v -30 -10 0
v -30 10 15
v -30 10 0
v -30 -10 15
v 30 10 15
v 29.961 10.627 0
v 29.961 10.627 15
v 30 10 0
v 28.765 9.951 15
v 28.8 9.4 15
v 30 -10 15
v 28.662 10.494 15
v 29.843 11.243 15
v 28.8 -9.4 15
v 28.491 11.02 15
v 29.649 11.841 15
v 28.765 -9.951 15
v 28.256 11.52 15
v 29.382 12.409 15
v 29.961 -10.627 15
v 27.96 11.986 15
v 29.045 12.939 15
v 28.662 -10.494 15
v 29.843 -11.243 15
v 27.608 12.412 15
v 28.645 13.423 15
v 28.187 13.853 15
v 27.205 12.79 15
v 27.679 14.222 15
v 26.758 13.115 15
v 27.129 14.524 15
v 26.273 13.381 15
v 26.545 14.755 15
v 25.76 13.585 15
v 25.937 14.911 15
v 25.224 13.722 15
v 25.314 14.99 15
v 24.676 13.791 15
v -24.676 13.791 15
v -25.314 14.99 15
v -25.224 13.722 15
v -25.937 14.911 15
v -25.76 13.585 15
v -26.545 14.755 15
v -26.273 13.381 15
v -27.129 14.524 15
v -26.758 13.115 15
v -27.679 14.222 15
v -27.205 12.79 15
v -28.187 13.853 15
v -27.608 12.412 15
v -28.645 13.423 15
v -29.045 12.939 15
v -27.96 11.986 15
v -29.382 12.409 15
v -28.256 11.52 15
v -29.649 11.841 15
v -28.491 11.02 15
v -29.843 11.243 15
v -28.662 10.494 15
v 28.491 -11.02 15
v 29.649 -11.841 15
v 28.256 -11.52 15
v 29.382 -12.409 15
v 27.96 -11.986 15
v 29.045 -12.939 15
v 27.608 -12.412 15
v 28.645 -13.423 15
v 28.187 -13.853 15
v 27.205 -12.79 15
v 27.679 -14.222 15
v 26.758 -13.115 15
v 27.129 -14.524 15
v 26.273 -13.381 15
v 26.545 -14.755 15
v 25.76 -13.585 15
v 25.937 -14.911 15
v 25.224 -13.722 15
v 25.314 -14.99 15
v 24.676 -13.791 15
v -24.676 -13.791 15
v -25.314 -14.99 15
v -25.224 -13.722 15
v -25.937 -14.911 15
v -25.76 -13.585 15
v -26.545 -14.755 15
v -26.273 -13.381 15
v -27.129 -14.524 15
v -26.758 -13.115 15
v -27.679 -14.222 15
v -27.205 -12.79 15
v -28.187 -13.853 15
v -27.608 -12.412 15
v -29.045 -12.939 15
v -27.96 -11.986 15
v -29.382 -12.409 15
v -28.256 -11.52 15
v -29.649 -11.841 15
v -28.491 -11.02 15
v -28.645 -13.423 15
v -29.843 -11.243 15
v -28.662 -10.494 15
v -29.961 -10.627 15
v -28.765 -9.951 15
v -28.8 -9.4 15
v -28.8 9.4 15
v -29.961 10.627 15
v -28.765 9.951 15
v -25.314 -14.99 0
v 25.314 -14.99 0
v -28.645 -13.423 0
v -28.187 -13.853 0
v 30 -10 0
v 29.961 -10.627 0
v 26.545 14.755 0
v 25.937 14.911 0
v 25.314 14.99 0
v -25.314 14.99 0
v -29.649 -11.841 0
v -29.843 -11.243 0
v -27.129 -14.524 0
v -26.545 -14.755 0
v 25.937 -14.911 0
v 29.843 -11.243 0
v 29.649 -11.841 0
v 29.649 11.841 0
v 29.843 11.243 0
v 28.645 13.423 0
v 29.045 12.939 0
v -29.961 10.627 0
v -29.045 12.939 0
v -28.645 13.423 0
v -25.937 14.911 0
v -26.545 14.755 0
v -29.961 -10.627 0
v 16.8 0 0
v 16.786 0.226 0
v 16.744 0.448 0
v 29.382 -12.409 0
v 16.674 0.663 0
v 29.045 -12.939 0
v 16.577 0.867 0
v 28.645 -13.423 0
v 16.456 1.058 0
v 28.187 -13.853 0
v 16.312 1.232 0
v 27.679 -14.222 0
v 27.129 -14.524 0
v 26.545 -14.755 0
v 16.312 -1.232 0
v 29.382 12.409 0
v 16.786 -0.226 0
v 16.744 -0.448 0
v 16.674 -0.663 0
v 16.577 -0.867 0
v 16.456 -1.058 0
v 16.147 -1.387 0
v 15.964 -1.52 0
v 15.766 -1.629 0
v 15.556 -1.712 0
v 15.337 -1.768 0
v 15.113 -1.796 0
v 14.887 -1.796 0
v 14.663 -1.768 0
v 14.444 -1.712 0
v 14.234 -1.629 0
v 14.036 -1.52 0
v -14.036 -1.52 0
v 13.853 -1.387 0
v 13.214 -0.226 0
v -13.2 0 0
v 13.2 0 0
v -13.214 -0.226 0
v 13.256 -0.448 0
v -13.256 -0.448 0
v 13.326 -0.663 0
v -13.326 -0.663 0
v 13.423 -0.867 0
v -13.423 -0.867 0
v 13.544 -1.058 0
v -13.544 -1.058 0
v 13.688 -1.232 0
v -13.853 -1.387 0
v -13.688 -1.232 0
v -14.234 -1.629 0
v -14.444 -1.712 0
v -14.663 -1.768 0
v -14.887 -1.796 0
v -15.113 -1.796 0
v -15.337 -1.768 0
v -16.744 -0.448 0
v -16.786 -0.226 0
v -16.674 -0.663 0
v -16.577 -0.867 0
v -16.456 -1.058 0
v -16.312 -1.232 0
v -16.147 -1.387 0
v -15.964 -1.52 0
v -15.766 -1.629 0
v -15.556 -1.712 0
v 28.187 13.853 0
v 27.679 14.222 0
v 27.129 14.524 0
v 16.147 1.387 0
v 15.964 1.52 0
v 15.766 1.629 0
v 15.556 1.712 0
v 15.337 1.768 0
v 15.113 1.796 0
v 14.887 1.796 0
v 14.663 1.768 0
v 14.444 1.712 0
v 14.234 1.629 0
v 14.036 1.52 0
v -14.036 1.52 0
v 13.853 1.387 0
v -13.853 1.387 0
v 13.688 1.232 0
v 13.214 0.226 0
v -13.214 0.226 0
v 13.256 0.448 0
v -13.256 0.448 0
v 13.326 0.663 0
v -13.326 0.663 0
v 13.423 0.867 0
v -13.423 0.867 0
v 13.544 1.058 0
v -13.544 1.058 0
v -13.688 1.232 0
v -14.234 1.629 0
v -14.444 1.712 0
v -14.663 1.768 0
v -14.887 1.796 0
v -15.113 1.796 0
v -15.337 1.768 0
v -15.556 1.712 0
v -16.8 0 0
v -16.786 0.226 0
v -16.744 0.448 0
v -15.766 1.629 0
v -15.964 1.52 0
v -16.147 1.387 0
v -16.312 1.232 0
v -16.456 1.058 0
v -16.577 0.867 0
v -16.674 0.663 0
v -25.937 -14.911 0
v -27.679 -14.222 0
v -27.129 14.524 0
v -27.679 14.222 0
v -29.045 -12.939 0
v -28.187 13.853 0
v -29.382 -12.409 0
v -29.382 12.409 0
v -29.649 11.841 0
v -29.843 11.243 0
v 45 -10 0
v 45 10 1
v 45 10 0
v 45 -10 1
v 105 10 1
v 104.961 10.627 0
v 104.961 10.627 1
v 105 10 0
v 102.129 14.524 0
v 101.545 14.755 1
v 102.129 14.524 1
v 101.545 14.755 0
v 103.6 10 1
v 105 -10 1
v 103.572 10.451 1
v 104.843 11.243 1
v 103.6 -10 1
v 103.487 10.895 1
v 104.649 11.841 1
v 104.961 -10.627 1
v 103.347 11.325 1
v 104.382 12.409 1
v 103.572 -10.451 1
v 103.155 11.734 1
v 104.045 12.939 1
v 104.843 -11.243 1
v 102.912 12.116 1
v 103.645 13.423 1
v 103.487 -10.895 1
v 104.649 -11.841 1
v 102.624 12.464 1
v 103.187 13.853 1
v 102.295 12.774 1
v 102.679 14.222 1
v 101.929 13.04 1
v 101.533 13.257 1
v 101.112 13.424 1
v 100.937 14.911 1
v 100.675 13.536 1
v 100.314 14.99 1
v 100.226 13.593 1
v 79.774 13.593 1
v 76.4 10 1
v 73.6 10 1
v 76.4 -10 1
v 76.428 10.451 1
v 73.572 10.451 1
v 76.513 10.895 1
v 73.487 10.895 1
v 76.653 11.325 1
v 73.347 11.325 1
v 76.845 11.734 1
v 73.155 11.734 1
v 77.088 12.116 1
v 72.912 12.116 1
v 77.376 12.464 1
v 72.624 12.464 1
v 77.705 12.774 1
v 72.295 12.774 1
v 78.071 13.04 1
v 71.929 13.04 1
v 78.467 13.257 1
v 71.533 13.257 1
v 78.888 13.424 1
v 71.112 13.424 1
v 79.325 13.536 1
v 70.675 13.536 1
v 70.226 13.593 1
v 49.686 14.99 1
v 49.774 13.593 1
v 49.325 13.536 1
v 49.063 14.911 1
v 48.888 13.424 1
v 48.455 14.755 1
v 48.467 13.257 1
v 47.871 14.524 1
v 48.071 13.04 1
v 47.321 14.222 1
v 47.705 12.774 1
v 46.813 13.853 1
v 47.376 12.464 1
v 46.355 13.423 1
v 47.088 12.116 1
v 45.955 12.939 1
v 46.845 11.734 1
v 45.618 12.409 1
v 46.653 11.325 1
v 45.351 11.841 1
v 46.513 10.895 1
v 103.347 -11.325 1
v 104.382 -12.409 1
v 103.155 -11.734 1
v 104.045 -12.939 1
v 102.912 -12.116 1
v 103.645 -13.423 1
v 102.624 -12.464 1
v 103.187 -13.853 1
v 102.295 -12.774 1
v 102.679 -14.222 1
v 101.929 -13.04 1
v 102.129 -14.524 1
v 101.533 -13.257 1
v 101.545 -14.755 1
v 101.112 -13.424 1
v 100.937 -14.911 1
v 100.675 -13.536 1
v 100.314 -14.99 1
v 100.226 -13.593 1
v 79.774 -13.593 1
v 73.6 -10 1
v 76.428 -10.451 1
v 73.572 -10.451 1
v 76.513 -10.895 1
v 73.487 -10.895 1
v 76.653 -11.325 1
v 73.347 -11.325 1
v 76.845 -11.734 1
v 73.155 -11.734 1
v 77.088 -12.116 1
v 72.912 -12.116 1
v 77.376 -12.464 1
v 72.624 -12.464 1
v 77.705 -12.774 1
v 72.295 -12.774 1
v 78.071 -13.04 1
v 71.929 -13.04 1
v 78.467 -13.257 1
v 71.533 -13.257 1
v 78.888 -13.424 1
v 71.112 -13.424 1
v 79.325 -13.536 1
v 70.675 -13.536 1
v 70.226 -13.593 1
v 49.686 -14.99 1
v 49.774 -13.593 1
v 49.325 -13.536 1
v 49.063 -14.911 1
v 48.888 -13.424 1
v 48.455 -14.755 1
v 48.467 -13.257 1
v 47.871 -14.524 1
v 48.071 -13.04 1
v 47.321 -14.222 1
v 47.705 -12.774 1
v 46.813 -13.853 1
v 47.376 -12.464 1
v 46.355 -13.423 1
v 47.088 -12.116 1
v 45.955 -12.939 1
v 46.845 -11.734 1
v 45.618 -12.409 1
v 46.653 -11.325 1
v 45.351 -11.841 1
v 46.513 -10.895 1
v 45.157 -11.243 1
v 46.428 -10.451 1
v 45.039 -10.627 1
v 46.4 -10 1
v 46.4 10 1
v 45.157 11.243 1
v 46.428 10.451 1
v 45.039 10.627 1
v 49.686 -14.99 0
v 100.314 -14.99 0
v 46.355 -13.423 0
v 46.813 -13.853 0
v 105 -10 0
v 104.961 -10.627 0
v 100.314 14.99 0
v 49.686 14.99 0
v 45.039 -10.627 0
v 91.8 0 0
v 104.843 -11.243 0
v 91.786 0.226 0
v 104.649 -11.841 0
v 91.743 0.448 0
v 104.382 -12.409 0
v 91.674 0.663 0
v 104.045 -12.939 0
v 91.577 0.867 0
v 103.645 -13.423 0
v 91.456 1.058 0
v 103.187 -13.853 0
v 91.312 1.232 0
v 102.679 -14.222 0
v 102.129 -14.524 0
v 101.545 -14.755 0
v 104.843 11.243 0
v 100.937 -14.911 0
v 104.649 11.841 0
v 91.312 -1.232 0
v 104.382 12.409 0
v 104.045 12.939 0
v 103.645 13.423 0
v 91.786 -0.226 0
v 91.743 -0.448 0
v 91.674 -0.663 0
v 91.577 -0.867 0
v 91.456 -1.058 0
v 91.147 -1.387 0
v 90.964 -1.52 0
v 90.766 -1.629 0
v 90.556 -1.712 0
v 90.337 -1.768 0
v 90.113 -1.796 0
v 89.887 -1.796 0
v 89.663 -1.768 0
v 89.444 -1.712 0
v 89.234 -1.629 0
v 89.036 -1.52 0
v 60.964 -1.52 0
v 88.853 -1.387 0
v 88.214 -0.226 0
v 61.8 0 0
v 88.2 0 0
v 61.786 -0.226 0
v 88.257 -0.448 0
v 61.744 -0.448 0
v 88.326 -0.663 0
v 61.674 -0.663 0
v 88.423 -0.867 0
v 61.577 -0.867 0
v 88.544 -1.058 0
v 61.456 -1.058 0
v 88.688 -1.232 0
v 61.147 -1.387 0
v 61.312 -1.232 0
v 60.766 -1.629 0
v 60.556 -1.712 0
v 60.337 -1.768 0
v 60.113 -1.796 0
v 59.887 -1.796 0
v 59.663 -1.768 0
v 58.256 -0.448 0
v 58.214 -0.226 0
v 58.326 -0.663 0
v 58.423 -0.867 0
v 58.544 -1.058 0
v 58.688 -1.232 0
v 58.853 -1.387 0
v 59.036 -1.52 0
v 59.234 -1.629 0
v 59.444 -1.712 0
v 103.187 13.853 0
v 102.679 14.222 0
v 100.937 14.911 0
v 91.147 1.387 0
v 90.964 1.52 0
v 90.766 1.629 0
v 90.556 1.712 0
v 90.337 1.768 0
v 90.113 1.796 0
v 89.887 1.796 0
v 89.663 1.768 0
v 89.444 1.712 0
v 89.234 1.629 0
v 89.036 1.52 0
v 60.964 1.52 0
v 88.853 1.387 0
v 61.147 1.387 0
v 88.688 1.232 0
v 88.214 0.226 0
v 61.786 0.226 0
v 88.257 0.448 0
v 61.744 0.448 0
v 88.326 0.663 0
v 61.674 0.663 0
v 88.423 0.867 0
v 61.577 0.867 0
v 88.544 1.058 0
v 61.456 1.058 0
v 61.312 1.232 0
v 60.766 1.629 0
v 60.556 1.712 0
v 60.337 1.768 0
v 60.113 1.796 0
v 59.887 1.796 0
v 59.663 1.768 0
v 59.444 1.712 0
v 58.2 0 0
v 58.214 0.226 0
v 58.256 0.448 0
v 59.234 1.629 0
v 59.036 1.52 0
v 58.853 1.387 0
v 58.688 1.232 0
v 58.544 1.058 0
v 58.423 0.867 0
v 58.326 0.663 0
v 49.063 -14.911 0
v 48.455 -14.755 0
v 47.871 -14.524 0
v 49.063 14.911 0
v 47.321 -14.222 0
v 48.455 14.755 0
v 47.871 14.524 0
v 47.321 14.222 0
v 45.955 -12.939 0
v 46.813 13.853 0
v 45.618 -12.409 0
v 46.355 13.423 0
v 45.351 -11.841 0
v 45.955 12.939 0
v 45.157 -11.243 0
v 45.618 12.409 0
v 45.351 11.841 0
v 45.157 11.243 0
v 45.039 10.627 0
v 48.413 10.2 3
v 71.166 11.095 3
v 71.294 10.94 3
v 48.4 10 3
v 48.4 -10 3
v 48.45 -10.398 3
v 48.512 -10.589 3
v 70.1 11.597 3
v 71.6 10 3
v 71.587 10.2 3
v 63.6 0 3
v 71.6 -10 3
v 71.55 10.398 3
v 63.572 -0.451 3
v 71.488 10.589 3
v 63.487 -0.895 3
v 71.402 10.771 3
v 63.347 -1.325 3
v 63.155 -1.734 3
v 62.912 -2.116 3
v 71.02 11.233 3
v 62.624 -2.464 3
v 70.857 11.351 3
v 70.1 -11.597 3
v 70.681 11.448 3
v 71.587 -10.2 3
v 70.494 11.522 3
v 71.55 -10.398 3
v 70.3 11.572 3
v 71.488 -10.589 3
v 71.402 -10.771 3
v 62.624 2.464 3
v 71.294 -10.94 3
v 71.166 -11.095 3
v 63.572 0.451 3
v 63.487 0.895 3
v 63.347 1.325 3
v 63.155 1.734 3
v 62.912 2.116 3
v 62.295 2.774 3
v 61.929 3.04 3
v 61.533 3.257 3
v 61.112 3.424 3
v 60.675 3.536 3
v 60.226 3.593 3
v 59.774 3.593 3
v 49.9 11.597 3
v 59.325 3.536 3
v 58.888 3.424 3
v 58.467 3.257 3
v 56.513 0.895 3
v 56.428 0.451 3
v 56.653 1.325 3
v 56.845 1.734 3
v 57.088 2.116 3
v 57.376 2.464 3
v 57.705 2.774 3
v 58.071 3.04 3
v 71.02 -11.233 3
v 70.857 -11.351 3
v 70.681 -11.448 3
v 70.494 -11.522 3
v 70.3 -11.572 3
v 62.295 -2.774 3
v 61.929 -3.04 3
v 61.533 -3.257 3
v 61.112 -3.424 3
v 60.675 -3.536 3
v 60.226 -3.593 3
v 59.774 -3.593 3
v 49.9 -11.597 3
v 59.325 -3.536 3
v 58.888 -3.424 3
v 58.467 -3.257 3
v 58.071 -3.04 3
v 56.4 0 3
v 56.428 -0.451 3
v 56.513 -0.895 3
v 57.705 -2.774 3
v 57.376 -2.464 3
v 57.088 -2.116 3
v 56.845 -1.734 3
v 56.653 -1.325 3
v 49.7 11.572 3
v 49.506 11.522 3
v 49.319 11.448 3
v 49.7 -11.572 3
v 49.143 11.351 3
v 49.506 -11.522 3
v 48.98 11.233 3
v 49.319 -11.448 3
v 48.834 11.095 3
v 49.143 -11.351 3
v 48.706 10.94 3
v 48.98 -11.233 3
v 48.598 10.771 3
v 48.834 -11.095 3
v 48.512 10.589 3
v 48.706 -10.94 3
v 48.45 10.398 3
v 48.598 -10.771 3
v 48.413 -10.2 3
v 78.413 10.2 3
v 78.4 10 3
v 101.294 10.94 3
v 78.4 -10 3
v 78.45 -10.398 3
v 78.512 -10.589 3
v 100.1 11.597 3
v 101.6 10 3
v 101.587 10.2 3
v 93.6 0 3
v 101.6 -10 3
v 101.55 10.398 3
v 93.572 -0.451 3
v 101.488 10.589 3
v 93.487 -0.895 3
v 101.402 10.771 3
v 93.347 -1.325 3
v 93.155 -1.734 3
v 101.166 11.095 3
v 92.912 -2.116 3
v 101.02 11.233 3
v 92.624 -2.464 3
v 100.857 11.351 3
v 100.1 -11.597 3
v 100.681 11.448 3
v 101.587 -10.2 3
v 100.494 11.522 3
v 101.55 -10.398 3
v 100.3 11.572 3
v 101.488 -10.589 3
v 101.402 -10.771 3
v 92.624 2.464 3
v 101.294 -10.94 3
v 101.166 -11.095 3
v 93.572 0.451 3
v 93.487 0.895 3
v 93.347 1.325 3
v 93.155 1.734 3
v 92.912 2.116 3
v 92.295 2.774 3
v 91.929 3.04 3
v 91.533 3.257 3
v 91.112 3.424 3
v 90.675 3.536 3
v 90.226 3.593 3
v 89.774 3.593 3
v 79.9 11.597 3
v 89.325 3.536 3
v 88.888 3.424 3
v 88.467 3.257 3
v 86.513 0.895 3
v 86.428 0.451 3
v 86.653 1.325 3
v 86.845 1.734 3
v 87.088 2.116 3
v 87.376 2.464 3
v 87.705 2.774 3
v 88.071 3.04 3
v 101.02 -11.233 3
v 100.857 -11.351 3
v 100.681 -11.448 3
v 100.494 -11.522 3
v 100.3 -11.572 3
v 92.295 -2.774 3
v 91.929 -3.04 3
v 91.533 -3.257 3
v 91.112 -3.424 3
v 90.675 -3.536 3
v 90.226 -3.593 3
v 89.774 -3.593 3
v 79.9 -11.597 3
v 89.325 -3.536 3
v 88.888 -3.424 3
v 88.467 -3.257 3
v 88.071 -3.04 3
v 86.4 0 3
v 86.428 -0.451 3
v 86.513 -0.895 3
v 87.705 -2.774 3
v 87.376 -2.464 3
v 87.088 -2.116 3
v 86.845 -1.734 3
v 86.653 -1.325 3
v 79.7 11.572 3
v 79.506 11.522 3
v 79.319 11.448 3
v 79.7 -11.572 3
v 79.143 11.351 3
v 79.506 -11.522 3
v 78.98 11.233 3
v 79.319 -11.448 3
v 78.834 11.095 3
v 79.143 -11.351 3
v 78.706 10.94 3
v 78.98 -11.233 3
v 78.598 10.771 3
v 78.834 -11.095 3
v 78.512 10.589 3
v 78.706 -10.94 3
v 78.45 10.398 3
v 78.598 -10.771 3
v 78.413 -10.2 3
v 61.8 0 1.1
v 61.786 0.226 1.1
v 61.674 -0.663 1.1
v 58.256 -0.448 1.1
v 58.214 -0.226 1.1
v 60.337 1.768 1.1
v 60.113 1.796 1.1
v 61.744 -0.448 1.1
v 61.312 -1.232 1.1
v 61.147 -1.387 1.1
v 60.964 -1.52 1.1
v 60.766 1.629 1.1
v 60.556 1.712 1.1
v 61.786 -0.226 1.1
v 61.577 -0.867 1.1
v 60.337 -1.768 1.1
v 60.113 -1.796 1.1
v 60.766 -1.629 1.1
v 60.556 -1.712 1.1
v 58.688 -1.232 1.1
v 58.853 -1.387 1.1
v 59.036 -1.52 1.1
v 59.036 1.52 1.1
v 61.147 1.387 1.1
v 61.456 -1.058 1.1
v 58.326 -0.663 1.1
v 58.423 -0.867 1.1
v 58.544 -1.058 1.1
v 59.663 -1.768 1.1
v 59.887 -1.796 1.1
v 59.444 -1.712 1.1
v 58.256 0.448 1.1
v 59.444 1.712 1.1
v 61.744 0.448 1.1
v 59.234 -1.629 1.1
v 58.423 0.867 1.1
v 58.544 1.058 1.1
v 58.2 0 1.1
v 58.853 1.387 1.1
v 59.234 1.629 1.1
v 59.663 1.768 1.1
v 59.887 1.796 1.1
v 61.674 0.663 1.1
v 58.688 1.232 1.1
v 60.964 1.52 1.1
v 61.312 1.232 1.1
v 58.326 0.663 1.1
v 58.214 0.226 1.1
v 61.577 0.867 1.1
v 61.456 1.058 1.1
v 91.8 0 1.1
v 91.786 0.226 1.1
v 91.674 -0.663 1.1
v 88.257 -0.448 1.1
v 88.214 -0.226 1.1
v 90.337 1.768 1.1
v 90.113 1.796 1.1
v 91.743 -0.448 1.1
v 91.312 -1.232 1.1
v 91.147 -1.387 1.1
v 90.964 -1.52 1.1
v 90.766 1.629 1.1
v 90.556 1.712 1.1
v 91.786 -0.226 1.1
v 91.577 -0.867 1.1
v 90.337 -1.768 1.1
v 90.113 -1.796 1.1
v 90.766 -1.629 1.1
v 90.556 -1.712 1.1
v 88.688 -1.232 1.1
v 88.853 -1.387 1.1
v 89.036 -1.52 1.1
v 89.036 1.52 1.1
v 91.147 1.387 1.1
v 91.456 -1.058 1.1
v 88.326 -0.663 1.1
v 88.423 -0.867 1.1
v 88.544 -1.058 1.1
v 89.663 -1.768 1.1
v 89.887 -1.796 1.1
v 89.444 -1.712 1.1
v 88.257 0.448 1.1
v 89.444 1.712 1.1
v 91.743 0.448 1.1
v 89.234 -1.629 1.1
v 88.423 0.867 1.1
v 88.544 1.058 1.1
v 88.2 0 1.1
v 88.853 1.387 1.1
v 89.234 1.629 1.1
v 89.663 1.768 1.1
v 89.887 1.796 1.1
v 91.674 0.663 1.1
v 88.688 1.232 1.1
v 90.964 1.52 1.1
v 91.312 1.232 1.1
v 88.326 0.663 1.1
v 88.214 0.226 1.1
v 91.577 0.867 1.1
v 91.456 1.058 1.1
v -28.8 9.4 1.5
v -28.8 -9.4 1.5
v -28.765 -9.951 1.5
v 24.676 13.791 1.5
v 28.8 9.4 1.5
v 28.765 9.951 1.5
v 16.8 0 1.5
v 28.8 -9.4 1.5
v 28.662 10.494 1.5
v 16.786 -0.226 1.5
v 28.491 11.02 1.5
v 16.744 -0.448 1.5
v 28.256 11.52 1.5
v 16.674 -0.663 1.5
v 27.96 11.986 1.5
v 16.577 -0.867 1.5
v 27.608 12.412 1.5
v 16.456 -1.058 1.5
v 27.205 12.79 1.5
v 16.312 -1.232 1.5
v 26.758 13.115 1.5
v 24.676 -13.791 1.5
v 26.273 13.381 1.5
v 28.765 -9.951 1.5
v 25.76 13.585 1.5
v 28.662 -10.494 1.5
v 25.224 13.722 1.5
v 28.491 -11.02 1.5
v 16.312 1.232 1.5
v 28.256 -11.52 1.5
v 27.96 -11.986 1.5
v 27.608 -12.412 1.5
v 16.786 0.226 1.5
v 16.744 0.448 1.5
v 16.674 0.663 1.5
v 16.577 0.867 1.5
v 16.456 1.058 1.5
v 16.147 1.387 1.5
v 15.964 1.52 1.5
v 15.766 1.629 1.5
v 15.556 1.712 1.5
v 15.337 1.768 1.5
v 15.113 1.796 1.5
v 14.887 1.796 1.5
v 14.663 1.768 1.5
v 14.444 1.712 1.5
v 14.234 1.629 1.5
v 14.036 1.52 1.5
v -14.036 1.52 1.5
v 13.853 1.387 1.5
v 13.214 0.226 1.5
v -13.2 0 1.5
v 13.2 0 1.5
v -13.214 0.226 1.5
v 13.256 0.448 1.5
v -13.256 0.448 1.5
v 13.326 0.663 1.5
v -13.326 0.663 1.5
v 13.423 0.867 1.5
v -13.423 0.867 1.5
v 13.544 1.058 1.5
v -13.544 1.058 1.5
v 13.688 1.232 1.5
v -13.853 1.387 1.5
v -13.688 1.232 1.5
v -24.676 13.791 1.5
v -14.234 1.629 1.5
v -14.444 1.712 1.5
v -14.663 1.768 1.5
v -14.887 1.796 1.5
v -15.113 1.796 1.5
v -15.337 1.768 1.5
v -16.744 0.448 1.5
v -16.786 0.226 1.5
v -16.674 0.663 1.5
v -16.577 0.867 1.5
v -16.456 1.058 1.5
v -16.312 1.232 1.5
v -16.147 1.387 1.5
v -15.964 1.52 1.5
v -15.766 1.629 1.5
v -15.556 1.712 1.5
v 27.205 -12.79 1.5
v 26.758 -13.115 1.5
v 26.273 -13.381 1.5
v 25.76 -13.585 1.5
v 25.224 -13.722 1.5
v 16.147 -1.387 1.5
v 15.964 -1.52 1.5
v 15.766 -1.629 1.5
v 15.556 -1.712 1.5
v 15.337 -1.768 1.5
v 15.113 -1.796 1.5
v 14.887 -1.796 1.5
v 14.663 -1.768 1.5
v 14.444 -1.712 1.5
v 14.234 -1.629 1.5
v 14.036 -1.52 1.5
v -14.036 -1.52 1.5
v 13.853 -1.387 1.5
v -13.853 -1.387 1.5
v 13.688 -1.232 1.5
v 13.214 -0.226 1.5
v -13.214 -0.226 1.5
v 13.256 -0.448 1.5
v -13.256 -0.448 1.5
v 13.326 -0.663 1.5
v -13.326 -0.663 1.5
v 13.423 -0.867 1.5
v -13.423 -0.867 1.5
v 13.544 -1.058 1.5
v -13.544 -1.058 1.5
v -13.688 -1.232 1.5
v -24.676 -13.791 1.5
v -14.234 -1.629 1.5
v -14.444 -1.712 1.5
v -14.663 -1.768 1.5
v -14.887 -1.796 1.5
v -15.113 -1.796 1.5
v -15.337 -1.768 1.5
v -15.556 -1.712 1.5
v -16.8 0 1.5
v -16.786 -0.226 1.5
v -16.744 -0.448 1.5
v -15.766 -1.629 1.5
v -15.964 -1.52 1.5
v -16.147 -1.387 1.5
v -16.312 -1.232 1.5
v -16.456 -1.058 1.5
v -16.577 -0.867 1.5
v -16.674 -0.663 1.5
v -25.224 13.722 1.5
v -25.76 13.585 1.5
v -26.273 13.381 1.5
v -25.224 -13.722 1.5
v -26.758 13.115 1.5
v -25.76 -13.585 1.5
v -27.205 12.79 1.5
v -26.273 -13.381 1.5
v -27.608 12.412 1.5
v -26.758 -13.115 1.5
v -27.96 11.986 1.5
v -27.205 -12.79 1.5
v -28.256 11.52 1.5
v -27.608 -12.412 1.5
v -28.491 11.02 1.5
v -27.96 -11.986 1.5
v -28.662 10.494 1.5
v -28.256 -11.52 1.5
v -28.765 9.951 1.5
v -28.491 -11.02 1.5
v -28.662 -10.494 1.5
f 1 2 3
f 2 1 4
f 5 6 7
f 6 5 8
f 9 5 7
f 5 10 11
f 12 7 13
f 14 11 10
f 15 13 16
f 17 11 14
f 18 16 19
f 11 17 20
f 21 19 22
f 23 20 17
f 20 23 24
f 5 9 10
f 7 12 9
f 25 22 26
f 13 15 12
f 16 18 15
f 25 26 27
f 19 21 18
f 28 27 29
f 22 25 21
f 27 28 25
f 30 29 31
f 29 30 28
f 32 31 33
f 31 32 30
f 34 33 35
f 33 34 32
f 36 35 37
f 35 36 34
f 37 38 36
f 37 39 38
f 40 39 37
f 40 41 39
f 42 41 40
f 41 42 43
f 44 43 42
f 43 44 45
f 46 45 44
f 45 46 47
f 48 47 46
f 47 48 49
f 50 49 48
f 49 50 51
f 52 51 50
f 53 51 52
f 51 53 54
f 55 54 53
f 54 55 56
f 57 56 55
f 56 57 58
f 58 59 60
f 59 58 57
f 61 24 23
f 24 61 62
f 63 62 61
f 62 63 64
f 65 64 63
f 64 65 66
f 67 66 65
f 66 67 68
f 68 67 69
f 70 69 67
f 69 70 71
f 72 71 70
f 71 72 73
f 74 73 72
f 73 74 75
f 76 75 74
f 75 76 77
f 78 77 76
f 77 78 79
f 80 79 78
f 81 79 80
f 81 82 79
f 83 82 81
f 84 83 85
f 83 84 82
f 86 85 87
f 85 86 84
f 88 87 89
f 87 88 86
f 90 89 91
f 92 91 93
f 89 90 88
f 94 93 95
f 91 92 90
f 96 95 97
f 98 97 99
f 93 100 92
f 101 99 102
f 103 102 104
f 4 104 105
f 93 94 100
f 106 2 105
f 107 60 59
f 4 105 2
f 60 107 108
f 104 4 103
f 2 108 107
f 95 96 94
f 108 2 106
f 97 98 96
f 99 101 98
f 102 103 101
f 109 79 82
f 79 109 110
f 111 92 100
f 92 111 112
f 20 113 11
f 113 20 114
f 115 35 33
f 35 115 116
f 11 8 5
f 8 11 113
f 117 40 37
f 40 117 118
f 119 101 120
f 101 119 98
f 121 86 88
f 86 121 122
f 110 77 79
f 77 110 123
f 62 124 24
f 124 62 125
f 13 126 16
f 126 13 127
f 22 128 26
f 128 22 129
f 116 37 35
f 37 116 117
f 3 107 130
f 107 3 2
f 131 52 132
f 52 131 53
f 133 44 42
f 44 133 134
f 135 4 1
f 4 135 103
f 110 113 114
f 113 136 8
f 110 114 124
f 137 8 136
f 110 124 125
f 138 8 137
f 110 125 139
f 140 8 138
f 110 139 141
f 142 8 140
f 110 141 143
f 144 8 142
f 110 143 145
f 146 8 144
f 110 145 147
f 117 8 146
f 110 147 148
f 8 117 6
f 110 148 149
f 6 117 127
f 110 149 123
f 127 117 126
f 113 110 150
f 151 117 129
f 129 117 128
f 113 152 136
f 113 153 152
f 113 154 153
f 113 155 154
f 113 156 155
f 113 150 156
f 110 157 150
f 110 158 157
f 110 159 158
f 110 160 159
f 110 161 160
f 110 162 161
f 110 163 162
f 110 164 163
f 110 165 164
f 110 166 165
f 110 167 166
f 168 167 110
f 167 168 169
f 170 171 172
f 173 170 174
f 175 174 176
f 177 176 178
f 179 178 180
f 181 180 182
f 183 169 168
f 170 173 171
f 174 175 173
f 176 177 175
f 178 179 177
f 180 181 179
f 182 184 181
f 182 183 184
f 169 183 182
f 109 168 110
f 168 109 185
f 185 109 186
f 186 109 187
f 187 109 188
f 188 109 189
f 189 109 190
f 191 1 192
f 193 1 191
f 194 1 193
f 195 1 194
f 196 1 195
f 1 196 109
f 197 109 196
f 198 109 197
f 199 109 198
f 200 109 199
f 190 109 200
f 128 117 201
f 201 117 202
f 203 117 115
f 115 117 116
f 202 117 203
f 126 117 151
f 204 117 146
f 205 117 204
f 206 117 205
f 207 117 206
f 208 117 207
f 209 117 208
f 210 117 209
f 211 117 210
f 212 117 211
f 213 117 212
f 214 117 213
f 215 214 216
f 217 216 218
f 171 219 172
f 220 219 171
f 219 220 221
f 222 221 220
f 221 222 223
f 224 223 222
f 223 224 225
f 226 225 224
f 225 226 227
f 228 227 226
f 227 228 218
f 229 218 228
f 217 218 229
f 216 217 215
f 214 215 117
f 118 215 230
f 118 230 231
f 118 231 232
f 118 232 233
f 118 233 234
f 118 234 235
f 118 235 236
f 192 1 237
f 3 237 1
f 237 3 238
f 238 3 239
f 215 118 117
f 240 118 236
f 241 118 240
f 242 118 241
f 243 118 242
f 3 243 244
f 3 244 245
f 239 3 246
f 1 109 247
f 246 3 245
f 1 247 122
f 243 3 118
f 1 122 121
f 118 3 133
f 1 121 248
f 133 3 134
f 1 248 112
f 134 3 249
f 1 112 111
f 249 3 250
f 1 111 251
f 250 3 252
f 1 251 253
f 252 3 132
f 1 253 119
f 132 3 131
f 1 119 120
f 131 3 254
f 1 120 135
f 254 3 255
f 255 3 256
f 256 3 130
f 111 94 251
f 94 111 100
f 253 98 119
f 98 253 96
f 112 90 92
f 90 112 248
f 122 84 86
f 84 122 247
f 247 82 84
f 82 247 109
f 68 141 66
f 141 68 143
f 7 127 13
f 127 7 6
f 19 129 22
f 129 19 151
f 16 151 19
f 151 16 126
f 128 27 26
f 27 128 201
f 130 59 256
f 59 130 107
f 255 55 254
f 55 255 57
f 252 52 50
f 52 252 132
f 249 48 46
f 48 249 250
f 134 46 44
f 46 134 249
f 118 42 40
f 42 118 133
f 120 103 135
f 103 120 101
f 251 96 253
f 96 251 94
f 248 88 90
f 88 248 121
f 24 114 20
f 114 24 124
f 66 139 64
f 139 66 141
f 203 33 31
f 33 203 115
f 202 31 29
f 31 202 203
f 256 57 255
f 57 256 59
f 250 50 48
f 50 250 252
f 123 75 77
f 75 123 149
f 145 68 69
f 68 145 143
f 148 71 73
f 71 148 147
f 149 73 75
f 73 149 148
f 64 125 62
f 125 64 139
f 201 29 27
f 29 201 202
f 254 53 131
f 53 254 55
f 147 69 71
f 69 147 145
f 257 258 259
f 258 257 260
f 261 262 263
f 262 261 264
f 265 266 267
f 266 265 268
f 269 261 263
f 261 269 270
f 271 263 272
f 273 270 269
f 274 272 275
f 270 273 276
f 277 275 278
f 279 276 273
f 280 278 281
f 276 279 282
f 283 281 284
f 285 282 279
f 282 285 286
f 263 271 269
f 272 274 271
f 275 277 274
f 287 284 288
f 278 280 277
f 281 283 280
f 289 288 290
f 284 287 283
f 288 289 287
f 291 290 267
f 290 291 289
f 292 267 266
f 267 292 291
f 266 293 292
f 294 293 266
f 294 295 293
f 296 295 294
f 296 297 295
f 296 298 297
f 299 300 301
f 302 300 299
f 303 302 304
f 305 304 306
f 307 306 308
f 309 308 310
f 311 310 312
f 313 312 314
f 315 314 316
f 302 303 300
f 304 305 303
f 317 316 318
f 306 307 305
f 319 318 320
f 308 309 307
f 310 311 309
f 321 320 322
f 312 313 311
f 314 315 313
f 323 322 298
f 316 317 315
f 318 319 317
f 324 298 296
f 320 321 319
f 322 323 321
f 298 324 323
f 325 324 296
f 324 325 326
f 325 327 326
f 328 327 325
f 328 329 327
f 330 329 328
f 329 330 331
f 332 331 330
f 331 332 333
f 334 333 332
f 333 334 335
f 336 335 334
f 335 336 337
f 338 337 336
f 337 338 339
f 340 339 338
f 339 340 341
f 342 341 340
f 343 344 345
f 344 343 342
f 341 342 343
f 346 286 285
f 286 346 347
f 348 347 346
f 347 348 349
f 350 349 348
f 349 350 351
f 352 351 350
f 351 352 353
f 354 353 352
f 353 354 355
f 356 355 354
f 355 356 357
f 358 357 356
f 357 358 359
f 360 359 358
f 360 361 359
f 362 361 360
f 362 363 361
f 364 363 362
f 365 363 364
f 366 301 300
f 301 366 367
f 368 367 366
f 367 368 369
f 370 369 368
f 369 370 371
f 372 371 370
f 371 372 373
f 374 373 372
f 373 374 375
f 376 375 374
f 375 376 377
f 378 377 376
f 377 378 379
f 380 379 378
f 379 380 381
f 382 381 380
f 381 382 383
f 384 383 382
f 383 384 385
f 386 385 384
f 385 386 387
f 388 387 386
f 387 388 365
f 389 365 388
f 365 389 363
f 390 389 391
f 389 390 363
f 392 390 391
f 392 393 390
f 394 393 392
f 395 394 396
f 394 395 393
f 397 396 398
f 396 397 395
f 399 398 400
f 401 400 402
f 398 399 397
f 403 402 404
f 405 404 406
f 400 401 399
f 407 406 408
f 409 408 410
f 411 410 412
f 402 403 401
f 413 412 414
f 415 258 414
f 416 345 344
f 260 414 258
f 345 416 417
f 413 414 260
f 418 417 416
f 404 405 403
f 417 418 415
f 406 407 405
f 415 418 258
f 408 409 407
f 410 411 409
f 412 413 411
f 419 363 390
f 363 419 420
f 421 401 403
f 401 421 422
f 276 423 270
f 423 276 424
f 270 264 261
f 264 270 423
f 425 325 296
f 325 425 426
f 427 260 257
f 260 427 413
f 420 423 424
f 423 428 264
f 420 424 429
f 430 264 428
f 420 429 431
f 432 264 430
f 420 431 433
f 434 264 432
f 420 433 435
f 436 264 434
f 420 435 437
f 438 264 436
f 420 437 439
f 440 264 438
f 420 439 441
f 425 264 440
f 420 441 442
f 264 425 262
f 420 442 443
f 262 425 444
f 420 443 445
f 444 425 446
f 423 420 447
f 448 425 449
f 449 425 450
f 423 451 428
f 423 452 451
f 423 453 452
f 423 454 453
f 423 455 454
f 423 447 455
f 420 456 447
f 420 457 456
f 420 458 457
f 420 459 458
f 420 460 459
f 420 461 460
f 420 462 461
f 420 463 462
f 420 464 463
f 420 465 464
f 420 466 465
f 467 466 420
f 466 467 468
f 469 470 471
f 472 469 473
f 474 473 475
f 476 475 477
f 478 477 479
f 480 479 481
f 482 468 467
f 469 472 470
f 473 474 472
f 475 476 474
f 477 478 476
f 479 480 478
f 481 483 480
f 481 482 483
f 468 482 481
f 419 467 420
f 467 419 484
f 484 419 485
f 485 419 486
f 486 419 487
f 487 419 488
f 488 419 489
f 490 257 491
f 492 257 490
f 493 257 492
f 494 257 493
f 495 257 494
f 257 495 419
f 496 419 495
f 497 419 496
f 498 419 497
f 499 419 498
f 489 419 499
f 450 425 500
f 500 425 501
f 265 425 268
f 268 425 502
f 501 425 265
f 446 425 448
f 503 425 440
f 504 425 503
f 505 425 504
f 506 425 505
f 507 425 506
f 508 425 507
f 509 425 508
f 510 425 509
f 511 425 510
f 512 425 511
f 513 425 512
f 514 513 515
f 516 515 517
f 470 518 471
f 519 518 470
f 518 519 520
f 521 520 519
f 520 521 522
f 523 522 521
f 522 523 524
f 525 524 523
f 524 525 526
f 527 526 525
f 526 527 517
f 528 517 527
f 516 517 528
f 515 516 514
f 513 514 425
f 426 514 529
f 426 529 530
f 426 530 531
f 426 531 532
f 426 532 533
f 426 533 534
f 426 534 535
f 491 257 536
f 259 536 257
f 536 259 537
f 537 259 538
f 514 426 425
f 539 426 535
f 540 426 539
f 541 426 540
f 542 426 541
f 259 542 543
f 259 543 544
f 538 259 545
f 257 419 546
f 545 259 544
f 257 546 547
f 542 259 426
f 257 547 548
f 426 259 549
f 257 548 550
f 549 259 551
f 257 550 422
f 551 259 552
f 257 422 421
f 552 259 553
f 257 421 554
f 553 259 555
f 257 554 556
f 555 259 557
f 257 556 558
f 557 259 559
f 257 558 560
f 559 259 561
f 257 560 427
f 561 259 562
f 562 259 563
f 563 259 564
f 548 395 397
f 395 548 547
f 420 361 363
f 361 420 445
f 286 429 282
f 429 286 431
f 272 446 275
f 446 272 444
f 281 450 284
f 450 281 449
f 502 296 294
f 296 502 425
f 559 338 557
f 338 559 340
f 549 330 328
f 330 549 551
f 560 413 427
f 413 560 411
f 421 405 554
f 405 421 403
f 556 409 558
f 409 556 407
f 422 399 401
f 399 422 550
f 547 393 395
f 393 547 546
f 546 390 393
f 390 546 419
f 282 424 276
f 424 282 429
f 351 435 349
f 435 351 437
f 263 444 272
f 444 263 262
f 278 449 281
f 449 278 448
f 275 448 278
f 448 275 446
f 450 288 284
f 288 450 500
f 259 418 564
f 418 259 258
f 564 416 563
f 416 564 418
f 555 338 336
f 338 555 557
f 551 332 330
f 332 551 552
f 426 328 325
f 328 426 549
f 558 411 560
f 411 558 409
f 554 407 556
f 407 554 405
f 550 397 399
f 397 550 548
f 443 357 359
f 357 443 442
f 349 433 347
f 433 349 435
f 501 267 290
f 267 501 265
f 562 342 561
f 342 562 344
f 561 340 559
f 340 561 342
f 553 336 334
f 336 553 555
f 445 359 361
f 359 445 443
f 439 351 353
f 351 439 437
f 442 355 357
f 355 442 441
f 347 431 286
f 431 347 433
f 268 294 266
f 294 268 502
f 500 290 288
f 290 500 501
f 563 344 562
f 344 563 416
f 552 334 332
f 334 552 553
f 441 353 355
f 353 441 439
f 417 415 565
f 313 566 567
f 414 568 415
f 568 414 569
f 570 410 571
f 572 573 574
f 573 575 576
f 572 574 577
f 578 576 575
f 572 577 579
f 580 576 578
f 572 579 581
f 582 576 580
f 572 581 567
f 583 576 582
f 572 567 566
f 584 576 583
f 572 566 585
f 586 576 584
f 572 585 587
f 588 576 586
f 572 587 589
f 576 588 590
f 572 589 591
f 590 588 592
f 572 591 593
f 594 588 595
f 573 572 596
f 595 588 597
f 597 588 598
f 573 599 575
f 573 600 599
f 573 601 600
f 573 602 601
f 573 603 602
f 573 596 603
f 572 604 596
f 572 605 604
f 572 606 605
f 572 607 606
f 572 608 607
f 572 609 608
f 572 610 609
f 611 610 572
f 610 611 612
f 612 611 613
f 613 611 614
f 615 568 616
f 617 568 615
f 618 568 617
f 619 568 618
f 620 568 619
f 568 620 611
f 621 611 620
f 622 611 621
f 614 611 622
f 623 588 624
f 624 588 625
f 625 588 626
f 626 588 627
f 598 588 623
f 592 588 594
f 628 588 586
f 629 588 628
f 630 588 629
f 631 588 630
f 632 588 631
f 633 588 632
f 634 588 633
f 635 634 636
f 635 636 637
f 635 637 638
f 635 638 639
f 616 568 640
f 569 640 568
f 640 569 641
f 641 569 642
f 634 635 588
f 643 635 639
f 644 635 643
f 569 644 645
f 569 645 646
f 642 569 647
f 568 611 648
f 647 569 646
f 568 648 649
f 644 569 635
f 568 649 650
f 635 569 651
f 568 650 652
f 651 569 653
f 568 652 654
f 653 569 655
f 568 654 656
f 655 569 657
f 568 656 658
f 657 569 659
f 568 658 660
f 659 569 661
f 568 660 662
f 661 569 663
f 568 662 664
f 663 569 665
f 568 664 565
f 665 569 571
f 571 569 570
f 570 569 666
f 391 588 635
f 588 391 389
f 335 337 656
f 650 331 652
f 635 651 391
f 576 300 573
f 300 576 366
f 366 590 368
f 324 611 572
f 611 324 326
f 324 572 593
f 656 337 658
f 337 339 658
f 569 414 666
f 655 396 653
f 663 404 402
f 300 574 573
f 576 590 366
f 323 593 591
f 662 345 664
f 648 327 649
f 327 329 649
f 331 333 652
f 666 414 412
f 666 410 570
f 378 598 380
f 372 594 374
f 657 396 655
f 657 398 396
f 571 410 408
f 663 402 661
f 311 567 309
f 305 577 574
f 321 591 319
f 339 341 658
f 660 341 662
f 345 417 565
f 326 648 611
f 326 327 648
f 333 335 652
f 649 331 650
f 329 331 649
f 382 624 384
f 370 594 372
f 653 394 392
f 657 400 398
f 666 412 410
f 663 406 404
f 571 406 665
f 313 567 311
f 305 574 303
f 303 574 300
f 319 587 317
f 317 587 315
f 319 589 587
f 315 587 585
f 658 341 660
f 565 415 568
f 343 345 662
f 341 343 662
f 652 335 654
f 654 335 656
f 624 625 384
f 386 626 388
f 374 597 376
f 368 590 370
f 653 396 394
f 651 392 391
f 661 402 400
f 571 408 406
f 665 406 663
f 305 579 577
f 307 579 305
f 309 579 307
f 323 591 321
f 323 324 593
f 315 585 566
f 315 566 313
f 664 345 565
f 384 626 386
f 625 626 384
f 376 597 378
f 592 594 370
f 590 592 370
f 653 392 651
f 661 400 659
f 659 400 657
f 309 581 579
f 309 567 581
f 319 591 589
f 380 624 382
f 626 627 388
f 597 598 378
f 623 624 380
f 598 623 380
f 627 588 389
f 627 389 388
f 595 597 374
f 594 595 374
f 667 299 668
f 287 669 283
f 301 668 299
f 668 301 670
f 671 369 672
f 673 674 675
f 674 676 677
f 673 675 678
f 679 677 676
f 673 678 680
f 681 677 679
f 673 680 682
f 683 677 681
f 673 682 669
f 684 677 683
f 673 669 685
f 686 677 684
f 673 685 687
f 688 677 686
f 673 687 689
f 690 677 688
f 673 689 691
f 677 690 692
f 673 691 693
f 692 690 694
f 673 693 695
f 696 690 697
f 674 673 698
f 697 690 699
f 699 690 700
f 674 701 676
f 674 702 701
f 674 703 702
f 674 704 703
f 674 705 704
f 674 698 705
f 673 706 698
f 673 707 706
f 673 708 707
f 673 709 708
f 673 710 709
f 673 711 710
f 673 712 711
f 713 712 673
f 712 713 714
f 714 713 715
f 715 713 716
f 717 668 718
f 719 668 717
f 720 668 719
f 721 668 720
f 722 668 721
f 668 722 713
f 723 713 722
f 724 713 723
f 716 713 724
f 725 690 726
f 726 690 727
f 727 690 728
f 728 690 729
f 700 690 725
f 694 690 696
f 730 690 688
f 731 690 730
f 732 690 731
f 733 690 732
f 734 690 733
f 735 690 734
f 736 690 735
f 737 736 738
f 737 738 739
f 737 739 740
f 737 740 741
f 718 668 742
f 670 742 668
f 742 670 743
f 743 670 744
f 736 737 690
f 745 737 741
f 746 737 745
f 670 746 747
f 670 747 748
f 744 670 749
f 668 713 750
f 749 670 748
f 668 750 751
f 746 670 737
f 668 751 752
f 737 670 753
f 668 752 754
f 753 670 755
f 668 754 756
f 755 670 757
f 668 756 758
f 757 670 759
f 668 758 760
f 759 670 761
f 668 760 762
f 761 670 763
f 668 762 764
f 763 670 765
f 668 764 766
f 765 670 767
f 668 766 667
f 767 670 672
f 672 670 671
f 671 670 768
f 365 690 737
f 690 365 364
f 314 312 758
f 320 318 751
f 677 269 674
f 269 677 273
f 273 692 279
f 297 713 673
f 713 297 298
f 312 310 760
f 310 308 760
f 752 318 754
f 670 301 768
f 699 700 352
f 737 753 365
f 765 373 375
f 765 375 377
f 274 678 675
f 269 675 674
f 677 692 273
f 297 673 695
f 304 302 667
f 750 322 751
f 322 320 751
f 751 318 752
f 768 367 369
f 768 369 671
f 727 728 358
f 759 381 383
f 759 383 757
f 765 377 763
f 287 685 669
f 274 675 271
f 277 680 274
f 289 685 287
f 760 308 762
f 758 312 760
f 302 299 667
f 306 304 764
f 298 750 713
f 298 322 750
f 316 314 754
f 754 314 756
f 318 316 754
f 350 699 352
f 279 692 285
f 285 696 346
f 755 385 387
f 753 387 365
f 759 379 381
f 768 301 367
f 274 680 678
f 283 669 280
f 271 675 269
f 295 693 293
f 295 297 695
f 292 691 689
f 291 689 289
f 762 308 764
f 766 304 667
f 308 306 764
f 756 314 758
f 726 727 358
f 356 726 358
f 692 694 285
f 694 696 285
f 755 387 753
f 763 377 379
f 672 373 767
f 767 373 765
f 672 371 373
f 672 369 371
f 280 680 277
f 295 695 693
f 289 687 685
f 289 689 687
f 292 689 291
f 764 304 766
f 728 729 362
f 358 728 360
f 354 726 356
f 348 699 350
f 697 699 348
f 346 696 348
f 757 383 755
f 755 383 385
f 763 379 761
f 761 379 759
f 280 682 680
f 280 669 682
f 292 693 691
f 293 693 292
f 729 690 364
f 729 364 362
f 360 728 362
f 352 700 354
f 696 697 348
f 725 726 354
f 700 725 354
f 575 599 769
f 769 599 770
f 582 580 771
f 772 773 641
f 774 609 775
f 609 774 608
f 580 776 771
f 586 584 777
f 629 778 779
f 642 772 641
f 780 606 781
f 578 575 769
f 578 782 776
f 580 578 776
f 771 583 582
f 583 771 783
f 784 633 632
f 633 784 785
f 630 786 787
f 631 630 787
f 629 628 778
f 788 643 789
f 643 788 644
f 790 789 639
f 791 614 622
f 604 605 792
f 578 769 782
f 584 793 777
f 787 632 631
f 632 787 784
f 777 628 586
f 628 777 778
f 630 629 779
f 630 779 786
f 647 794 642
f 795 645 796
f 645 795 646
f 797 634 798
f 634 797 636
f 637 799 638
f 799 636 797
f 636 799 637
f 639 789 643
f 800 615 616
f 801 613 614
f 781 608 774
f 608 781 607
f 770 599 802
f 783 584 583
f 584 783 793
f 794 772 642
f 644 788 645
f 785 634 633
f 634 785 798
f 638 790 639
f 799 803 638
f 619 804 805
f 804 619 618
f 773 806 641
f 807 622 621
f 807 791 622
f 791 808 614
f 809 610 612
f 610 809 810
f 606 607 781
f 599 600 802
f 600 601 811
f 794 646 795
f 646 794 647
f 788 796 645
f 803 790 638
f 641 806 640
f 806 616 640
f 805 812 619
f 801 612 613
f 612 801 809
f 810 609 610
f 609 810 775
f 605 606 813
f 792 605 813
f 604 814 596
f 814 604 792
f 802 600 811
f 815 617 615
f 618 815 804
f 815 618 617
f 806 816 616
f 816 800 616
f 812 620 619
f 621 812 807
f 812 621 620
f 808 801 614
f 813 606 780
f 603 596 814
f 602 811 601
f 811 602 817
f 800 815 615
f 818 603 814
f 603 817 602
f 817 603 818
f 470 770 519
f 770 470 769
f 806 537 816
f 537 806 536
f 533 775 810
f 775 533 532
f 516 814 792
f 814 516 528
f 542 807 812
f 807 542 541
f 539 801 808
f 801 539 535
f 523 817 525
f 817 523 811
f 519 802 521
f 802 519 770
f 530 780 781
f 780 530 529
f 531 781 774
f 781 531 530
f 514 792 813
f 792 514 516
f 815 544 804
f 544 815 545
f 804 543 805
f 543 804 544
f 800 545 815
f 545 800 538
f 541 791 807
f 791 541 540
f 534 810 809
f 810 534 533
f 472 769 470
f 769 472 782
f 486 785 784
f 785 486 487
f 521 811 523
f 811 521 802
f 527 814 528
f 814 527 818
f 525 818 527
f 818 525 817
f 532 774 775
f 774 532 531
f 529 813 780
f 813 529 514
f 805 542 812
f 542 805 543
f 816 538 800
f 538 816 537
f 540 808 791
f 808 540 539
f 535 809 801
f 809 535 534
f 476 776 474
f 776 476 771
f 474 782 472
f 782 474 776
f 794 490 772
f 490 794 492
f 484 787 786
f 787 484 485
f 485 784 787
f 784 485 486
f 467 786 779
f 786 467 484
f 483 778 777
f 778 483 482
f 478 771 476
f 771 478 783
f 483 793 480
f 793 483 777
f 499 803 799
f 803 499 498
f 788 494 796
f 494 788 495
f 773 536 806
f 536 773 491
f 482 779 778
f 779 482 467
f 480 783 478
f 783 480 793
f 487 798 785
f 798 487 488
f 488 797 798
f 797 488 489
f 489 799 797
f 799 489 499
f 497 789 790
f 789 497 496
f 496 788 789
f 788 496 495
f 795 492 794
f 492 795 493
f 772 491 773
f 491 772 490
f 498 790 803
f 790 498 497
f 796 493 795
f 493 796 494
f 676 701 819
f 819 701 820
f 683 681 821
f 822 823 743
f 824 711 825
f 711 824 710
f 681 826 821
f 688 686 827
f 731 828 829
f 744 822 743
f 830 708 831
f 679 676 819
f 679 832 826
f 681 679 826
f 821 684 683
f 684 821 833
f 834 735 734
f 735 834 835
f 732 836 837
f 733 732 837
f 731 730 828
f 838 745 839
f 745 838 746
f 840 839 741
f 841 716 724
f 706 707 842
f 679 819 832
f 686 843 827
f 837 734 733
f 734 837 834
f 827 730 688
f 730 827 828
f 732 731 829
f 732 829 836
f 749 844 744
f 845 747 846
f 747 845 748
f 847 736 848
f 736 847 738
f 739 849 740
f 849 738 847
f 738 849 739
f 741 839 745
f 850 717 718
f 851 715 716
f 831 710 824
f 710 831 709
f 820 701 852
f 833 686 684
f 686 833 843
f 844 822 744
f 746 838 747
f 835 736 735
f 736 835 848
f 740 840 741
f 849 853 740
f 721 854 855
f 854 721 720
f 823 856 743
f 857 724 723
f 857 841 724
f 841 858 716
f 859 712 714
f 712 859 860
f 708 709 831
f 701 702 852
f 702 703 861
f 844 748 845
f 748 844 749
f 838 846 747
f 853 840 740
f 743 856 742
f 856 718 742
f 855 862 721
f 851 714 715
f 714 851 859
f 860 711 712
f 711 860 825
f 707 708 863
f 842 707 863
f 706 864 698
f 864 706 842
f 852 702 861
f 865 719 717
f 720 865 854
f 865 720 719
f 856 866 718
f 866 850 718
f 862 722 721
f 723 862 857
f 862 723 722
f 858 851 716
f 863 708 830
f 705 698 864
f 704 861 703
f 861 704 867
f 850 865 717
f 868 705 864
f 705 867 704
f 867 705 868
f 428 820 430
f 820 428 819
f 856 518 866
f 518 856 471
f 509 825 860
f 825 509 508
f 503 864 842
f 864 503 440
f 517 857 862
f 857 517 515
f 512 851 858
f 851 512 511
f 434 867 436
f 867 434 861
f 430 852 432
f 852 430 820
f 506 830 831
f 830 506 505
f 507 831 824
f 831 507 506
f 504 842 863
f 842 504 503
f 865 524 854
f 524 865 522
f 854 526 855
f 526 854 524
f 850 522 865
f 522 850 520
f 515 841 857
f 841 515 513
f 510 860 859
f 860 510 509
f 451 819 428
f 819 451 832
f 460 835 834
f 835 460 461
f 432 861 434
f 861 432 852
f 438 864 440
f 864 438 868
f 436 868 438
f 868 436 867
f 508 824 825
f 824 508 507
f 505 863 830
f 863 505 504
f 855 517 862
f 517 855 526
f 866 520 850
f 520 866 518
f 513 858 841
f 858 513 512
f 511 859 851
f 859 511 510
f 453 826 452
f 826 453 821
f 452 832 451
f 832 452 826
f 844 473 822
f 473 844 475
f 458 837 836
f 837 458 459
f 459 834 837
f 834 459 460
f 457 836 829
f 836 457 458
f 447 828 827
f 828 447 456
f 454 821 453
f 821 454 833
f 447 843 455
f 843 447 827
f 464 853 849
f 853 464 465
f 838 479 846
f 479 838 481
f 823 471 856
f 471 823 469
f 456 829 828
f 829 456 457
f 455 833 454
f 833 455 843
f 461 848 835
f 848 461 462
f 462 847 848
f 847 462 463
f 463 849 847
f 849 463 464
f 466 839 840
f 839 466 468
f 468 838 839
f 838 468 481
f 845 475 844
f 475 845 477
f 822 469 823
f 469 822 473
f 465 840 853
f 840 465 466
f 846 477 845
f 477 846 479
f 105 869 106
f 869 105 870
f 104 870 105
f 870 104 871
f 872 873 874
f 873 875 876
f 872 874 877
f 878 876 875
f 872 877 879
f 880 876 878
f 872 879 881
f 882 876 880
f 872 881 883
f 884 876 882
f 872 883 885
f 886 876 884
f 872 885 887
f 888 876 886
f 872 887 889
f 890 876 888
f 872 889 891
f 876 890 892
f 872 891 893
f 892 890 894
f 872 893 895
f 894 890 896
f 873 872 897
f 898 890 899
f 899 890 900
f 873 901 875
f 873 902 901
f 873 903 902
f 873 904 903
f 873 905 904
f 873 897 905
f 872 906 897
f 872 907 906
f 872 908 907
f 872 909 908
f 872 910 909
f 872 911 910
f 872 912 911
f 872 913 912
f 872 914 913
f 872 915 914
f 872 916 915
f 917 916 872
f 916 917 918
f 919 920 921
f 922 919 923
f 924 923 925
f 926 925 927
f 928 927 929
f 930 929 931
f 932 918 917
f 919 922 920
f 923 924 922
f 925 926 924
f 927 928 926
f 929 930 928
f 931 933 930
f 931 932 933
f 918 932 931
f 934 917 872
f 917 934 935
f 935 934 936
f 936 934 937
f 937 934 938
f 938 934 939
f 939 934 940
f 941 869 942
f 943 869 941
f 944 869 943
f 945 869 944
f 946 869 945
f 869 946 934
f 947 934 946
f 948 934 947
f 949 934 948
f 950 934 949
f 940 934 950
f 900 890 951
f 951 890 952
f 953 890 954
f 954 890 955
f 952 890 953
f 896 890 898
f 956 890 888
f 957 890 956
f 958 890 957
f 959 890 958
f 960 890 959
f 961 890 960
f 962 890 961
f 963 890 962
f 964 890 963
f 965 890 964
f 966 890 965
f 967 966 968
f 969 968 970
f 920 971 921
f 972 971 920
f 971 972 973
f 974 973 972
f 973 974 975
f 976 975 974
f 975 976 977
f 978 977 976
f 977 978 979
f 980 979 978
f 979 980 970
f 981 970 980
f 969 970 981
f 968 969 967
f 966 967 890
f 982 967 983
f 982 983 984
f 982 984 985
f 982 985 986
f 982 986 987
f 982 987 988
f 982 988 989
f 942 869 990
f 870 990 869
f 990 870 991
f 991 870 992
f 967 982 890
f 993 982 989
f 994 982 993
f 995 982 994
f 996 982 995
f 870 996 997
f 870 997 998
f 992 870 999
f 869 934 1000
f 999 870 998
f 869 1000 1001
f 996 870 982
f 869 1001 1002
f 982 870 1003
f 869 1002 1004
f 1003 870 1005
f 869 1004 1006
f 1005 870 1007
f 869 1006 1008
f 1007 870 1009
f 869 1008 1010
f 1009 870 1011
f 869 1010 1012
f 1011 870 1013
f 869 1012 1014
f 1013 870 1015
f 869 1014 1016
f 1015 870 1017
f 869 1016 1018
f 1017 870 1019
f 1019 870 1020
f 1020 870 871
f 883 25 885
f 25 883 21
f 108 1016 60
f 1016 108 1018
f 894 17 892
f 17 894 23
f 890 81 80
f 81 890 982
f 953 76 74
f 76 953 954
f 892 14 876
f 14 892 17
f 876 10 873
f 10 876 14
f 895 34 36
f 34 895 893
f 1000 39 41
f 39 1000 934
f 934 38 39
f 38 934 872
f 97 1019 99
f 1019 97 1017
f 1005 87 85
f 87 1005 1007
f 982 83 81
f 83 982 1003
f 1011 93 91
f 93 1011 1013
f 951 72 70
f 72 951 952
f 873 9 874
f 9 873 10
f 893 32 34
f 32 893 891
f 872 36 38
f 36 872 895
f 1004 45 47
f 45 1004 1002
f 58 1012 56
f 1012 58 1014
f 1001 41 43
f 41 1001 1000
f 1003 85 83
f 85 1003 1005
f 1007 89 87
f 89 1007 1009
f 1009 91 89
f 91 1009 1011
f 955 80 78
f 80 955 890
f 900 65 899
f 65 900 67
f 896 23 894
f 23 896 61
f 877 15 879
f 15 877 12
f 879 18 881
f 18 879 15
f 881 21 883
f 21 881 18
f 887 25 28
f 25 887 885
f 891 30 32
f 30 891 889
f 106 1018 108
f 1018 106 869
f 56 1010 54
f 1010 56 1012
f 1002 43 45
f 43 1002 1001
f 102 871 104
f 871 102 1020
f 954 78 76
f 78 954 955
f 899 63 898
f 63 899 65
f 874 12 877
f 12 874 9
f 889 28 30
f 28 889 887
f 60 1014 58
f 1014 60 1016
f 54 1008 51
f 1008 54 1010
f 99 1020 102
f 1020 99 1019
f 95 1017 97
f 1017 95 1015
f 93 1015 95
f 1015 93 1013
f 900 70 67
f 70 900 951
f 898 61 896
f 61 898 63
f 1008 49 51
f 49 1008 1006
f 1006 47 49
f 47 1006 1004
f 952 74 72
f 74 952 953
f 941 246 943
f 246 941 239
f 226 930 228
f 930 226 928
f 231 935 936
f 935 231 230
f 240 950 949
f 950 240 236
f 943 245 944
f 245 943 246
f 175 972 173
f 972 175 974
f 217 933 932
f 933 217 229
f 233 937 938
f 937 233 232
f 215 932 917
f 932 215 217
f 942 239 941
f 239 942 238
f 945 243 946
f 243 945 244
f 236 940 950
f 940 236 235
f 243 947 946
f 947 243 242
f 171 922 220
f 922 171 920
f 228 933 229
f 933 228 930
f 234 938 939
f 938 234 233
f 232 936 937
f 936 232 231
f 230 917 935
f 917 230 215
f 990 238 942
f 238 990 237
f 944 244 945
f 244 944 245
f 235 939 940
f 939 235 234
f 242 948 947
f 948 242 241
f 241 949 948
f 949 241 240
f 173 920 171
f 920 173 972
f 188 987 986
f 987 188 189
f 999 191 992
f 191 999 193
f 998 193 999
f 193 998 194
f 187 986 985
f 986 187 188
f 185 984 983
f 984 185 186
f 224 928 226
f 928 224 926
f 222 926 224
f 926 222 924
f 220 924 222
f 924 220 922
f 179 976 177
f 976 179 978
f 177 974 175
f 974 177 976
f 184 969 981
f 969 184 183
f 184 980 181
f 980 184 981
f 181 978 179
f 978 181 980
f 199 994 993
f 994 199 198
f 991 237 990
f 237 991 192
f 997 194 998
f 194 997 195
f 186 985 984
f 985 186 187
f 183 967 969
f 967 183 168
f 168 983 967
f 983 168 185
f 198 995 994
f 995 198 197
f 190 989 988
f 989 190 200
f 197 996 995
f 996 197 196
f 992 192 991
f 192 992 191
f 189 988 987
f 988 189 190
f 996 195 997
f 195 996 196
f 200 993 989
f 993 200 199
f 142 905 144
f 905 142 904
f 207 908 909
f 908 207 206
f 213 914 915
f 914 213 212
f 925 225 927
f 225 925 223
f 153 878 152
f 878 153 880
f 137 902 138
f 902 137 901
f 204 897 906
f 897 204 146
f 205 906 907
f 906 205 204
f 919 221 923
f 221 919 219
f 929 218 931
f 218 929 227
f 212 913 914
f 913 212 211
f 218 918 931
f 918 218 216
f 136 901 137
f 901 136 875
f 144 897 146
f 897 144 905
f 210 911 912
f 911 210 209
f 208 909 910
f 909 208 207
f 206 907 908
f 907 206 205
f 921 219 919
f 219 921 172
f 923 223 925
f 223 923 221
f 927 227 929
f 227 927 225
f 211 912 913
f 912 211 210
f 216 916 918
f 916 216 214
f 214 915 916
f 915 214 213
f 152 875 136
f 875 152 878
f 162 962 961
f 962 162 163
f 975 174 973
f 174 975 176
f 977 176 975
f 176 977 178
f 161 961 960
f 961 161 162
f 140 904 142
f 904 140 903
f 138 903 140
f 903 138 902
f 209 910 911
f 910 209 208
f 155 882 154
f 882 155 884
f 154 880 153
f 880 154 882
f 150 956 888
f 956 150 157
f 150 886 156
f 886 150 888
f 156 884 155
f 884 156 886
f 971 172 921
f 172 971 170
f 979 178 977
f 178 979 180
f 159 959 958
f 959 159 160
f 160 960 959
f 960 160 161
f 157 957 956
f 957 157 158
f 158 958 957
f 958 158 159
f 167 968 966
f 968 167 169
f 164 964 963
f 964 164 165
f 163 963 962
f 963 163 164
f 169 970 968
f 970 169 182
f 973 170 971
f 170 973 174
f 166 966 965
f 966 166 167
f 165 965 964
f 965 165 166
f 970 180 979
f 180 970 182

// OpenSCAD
$fn = 50;


difference() {
	union() {
		hull() {
			translate(v = [-25.0000000000, 10.0000000000, 0]) {
				cylinder(h = 15, r = 5);
			}
			translate(v = [25.0000000000, 10.0000000000, 0]) {
				cylinder(h = 15, r = 5);
			}
			translate(v = [-25.0000000000, -10.0000000000, 0]) {
				cylinder(h = 15, r = 5);
			}
			translate(v = [25.0000000000, -10.0000000000, 0]) {
				cylinder(h = 15, r = 5);
			}
		}
		translate(v = [75, 0, 0]) {
			hull() {
				translate(v = [-25.0000000000, 10.0000000000, 0]) {
					cylinder(h = 1, r = 5);
				}
				translate(v = [25.0000000000, 10.0000000000, 0]) {
					cylinder(h = 1, r = 5);
				}
				translate(v = [-25.0000000000, -10.0000000000, 0]) {
					cylinder(h = 1, r = 5);
				}
				translate(v = [25.0000000000, -10.0000000000, 0]) {
					cylinder(h = 1, r = 5);
				}
			}
		}
		translate(v = [60.0000000000, 0.0000000000, 1]) {
			hull() {
				translate(v = [-10.0000000000, 10.0000000000, 0]) {
					cylinder(h = 2, r1 = 3.6000000000, r2 = 1.6000000000);
				}
				translate(v = [10.0000000000, 10.0000000000, 0]) {
					cylinder(h = 2, r1 = 3.6000000000, r2 = 1.6000000000);
				}
				translate(v = [-10.0000000000, -10.0000000000, 0]) {
					cylinder(h = 2, r1 = 3.6000000000, r2 = 1.6000000000);
				}
				translate(v = [10.0000000000, -10.0000000000, 0]) {
					cylinder(h = 2, r1 = 3.6000000000, r2 = 1.6000000000);
				}
			}
		}
		translate(v = [90.0000000000, 0.0000000000, 1]) {
			hull() {
				translate(v = [-10.0000000000, 10.0000000000, 0]) {
					cylinder(h = 2, r1 = 3.6000000000, r2 = 1.6000000000);
				}
				translate(v = [10.0000000000, 10.0000000000, 0]) {
					cylinder(h = 2, r1 = 3.6000000000, r2 = 1.6000000000);
				}
				translate(v = [-10.0000000000, -10.0000000000, 0]) {
					cylinder(h = 2, r1 = 3.6000000000, r2 = 1.6000000000);
				}
				translate(v = [10.0000000000, -10.0000000000, 0]) {
					cylinder(h = 2, r1 = 3.6000000000, r2 = 1.6000000000);
				}
			}
		}
	}
	union() {
		translate(v = [60.0000000000, 0.0000000000, 3]) {
			rotate(a = [0, 0, 0]) {
				difference() {
					union() {
						#translate(v = [0, 0, -3.0000000000]) {
							cylinder(h = 3, r = 1.5000000000);
						}
						#translate(v = [0, 0, -1.9000000000]) {
							cylinder(h = 1.9000000000, r1 = 1.8000000000, r2 = 3.6000000000);
						}
						#translate(v = [0, 0, -3.0000000000]) {
							cylinder(h = 3, r = 1.8000000000);
						}
						#translate(v = [0, 0, -3.0000000000]) {
							cylinder(h = 3, r = 1.5000000000);
						}
					}
					union();
				}
			}
		}
		translate(v = [90.0000000000, 0.0000000000, 3]) {
			rotate(a = [0, 0, 0]) {
				difference() {
					union() {
						#translate(v = [0, 0, -3.0000000000]) {
							cylinder(h = 3, r = 1.5000000000);
						}
						#translate(v = [0, 0, -1.9000000000]) {
							cylinder(h = 1.9000000000, r1 = 1.8000000000, r2 = 3.6000000000);
						}
						#translate(v = [0, 0, -3.0000000000]) {
							cylinder(h = 3, r = 1.8000000000);
						}
						#translate(v = [0, 0, -3.0000000000]) {
							cylinder(h = 3, r = 1.5000000000);
						}
					}
					union();
				}
			}
		}
		translate(v = [0, 0, 1.5000000000]) {
			hull() {
				translate(v = [-24.4000000000, 9.4000000000, 0]) {
					cylinder(h = 13.5000000000, r = 4.4000000000);
				}
				translate(v = [24.4000000000, 9.4000000000, 0]) {
					cylinder(h = 13.5000000000, r = 4.4000000000);
				}
				translate(v = [-24.4000000000, -9.4000000000, 0]) {
					cylinder(h = 13.5000000000, r = 4.4000000000);
				}
				translate(v = [24.4000000000, -9.4000000000, 0]) {
					cylinder(h = 13.5000000000, r = 4.4000000000);
				}
			}
		}
		#translate(v = [-15.0000000000, 0.0000000000, 0]) {
			cylinder(h = 1.5000000000, r = 1.8000000000);
		}
		#translate(v = [15.0000000000, 0.0000000000, 0]) {
			cylinder(h = 1.5000000000, r = 1.8000000000);
		}
	}
}
